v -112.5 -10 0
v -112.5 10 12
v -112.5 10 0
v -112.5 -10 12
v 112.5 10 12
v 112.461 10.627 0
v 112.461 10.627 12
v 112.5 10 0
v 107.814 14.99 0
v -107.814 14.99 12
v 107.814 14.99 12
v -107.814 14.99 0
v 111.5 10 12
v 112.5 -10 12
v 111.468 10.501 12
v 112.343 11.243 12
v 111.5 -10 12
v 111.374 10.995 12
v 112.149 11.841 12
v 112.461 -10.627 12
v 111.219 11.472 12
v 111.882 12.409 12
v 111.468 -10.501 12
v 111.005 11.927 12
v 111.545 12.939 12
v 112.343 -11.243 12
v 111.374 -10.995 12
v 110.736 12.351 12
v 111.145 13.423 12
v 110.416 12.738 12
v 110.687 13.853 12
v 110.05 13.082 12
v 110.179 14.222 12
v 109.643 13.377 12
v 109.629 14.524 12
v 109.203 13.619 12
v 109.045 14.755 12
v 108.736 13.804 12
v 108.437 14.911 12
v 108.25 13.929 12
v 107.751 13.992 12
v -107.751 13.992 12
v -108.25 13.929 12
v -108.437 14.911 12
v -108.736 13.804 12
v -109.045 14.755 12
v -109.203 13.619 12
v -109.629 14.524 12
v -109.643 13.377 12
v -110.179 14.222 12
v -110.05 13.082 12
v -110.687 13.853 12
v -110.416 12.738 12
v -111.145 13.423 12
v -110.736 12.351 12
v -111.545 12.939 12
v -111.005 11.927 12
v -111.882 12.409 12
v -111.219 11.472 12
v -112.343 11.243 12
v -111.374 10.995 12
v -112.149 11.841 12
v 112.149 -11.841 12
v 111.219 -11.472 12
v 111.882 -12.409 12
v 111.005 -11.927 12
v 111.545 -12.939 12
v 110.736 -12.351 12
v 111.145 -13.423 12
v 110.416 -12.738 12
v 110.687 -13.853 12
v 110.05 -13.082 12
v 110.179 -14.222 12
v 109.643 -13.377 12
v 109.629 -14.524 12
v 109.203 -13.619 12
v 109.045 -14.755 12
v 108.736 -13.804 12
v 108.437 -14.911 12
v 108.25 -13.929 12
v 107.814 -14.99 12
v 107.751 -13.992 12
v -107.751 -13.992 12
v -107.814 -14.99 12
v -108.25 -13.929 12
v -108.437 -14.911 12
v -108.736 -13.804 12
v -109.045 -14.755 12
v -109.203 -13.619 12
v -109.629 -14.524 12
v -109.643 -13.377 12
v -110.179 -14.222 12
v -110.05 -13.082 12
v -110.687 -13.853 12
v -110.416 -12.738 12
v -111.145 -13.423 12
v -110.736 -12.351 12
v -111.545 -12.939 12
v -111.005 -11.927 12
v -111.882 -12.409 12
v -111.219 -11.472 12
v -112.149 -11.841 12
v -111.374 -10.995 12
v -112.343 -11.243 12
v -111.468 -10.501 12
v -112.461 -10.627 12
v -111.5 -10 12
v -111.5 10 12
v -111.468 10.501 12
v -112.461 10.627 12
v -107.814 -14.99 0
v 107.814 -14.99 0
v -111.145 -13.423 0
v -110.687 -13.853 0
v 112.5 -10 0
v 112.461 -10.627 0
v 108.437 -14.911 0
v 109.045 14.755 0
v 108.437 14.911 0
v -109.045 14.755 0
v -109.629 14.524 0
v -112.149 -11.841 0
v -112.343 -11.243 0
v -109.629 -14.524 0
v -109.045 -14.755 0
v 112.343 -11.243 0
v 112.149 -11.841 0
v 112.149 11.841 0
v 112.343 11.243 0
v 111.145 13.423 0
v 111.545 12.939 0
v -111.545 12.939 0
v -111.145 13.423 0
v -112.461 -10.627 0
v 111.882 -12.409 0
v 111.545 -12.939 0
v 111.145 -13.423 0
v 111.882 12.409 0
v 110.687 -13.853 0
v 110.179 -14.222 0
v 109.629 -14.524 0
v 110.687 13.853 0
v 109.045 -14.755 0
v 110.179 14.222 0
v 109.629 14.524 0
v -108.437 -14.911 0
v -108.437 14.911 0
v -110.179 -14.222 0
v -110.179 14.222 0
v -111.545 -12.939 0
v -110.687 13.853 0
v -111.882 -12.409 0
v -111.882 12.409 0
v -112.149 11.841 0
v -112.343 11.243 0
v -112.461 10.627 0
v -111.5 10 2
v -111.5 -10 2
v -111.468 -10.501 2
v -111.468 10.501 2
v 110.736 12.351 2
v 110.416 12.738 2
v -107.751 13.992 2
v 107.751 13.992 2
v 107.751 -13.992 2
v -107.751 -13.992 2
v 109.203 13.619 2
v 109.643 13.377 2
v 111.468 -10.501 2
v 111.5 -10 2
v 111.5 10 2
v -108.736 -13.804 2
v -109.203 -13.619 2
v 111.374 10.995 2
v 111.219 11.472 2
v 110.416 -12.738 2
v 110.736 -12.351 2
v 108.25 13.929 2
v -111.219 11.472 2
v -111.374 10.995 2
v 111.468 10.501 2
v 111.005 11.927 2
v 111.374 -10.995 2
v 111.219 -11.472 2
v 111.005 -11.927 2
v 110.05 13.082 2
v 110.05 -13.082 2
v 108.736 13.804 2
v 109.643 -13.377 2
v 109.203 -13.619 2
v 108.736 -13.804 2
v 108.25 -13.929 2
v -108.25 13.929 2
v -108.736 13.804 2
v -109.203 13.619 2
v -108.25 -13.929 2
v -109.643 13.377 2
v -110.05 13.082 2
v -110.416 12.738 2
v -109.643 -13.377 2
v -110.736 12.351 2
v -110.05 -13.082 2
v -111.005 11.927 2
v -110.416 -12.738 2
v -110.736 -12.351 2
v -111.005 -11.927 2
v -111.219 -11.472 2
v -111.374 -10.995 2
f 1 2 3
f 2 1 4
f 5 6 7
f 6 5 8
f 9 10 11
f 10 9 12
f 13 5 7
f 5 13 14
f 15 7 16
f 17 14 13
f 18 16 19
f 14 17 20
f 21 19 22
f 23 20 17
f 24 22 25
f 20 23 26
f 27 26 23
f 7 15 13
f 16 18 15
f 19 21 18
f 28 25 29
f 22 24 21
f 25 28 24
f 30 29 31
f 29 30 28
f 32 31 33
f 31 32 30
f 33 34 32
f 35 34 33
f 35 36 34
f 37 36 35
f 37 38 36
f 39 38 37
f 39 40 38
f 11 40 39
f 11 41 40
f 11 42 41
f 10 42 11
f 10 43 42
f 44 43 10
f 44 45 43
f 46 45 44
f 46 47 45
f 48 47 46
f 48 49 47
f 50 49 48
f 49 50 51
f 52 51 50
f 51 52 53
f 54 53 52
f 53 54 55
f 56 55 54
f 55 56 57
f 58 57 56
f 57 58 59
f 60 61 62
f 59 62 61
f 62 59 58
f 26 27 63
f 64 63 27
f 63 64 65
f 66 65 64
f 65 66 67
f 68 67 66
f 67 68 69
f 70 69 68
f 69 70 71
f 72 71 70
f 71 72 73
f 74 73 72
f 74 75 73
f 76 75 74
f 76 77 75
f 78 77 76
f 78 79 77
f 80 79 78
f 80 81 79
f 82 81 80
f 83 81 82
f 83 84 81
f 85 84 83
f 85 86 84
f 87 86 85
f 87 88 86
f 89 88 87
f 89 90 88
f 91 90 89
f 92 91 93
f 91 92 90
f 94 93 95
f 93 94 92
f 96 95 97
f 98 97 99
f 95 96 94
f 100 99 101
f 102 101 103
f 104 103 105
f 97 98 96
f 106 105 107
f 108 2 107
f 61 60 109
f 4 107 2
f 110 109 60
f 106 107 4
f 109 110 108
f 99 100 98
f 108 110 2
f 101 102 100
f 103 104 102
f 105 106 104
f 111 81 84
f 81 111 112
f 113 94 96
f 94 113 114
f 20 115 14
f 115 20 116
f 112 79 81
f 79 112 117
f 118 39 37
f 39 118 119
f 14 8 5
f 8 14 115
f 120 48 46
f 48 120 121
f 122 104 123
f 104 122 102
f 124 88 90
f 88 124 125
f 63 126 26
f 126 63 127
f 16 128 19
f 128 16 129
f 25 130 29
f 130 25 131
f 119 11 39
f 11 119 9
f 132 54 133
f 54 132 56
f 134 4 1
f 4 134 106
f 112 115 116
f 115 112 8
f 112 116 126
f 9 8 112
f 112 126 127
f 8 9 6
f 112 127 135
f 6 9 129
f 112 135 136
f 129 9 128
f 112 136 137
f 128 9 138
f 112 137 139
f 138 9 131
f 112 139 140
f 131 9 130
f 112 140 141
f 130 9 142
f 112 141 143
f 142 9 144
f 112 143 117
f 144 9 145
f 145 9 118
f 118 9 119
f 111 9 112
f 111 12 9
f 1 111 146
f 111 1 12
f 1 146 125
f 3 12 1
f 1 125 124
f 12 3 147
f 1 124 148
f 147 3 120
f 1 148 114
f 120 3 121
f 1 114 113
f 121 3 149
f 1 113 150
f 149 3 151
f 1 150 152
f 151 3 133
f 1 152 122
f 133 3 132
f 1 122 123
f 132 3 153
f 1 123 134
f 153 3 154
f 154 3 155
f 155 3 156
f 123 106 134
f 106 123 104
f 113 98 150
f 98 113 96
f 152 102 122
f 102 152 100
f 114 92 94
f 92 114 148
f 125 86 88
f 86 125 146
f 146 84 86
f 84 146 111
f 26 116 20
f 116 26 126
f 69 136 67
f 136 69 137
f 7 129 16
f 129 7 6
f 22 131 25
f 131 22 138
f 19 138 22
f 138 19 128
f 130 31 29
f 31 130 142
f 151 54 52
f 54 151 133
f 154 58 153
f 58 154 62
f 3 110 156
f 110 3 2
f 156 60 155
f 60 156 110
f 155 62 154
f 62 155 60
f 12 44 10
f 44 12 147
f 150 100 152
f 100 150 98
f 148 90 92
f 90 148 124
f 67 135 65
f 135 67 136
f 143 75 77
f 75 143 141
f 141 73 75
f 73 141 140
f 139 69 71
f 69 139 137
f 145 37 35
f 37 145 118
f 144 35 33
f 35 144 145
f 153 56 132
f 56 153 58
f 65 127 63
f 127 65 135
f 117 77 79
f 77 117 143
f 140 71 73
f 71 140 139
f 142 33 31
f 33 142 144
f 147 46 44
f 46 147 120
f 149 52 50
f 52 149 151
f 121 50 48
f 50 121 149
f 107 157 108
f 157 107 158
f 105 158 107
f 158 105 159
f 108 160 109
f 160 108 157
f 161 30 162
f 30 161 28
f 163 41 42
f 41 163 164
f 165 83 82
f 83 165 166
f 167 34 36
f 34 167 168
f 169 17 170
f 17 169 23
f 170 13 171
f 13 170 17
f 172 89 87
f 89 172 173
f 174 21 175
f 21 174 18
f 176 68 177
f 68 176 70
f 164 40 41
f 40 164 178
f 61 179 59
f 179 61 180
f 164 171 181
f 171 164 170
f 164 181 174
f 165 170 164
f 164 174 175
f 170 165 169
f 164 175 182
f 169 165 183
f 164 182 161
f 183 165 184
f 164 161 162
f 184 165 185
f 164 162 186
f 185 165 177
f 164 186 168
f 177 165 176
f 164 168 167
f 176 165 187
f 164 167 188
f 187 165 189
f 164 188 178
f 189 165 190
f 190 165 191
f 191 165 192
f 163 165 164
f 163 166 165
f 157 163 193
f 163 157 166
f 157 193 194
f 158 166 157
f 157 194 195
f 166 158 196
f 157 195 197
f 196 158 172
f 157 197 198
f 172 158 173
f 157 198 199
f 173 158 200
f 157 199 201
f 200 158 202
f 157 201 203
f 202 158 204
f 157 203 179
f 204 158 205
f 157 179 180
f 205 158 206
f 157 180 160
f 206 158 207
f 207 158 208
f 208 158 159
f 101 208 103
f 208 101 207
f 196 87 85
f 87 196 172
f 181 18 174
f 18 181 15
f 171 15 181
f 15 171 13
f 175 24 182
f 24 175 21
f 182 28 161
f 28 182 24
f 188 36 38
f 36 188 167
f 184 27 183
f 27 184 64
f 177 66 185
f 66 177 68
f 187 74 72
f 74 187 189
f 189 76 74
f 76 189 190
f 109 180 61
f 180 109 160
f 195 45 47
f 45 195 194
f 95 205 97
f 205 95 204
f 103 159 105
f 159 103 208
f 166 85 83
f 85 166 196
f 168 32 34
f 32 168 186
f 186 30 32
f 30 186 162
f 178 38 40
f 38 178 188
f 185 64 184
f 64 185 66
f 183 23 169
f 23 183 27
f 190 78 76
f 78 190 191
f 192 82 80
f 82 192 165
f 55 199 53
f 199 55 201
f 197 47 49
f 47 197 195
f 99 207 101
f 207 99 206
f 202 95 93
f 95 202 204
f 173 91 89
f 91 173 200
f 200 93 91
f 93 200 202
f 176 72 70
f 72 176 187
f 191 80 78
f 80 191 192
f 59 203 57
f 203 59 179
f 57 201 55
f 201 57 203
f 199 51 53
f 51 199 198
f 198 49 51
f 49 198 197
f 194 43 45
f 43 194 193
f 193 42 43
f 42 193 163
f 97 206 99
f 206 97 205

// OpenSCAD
$fn = 50;


difference() {
	union() {
		hull() {
			translate(v = [-107.5000000000, 10.0000000000, 0]) {
				cylinder(h = 12, r = 5);
			}
			translate(v = [107.5000000000, 10.0000000000, 0]) {
				cylinder(h = 12, r = 5);
			}
			translate(v = [-107.5000000000, -10.0000000000, 0]) {
				cylinder(h = 12, r = 5);
			}
			translate(v = [107.5000000000, -10.0000000000, 0]) {
				cylinder(h = 12, r = 5);
			}
		}
	}
	union() {
		translate(v = [0, 0, 2]) {
			hull() {
				translate(v = [-107.5000000000, 10.0000000000, 0]) {
					cylinder(h = 10, r = 4);
				}
				translate(v = [107.5000000000, 10.0000000000, 0]) {
					cylinder(h = 10, r = 4);
				}
				translate(v = [-107.5000000000, -10.0000000000, 0]) {
					cylinder(h = 10, r = 4);
				}
				translate(v = [107.5000000000, -10.0000000000, 0]) {
					cylinder(h = 10, r = 4);
				}
			}
		}
	}
}
